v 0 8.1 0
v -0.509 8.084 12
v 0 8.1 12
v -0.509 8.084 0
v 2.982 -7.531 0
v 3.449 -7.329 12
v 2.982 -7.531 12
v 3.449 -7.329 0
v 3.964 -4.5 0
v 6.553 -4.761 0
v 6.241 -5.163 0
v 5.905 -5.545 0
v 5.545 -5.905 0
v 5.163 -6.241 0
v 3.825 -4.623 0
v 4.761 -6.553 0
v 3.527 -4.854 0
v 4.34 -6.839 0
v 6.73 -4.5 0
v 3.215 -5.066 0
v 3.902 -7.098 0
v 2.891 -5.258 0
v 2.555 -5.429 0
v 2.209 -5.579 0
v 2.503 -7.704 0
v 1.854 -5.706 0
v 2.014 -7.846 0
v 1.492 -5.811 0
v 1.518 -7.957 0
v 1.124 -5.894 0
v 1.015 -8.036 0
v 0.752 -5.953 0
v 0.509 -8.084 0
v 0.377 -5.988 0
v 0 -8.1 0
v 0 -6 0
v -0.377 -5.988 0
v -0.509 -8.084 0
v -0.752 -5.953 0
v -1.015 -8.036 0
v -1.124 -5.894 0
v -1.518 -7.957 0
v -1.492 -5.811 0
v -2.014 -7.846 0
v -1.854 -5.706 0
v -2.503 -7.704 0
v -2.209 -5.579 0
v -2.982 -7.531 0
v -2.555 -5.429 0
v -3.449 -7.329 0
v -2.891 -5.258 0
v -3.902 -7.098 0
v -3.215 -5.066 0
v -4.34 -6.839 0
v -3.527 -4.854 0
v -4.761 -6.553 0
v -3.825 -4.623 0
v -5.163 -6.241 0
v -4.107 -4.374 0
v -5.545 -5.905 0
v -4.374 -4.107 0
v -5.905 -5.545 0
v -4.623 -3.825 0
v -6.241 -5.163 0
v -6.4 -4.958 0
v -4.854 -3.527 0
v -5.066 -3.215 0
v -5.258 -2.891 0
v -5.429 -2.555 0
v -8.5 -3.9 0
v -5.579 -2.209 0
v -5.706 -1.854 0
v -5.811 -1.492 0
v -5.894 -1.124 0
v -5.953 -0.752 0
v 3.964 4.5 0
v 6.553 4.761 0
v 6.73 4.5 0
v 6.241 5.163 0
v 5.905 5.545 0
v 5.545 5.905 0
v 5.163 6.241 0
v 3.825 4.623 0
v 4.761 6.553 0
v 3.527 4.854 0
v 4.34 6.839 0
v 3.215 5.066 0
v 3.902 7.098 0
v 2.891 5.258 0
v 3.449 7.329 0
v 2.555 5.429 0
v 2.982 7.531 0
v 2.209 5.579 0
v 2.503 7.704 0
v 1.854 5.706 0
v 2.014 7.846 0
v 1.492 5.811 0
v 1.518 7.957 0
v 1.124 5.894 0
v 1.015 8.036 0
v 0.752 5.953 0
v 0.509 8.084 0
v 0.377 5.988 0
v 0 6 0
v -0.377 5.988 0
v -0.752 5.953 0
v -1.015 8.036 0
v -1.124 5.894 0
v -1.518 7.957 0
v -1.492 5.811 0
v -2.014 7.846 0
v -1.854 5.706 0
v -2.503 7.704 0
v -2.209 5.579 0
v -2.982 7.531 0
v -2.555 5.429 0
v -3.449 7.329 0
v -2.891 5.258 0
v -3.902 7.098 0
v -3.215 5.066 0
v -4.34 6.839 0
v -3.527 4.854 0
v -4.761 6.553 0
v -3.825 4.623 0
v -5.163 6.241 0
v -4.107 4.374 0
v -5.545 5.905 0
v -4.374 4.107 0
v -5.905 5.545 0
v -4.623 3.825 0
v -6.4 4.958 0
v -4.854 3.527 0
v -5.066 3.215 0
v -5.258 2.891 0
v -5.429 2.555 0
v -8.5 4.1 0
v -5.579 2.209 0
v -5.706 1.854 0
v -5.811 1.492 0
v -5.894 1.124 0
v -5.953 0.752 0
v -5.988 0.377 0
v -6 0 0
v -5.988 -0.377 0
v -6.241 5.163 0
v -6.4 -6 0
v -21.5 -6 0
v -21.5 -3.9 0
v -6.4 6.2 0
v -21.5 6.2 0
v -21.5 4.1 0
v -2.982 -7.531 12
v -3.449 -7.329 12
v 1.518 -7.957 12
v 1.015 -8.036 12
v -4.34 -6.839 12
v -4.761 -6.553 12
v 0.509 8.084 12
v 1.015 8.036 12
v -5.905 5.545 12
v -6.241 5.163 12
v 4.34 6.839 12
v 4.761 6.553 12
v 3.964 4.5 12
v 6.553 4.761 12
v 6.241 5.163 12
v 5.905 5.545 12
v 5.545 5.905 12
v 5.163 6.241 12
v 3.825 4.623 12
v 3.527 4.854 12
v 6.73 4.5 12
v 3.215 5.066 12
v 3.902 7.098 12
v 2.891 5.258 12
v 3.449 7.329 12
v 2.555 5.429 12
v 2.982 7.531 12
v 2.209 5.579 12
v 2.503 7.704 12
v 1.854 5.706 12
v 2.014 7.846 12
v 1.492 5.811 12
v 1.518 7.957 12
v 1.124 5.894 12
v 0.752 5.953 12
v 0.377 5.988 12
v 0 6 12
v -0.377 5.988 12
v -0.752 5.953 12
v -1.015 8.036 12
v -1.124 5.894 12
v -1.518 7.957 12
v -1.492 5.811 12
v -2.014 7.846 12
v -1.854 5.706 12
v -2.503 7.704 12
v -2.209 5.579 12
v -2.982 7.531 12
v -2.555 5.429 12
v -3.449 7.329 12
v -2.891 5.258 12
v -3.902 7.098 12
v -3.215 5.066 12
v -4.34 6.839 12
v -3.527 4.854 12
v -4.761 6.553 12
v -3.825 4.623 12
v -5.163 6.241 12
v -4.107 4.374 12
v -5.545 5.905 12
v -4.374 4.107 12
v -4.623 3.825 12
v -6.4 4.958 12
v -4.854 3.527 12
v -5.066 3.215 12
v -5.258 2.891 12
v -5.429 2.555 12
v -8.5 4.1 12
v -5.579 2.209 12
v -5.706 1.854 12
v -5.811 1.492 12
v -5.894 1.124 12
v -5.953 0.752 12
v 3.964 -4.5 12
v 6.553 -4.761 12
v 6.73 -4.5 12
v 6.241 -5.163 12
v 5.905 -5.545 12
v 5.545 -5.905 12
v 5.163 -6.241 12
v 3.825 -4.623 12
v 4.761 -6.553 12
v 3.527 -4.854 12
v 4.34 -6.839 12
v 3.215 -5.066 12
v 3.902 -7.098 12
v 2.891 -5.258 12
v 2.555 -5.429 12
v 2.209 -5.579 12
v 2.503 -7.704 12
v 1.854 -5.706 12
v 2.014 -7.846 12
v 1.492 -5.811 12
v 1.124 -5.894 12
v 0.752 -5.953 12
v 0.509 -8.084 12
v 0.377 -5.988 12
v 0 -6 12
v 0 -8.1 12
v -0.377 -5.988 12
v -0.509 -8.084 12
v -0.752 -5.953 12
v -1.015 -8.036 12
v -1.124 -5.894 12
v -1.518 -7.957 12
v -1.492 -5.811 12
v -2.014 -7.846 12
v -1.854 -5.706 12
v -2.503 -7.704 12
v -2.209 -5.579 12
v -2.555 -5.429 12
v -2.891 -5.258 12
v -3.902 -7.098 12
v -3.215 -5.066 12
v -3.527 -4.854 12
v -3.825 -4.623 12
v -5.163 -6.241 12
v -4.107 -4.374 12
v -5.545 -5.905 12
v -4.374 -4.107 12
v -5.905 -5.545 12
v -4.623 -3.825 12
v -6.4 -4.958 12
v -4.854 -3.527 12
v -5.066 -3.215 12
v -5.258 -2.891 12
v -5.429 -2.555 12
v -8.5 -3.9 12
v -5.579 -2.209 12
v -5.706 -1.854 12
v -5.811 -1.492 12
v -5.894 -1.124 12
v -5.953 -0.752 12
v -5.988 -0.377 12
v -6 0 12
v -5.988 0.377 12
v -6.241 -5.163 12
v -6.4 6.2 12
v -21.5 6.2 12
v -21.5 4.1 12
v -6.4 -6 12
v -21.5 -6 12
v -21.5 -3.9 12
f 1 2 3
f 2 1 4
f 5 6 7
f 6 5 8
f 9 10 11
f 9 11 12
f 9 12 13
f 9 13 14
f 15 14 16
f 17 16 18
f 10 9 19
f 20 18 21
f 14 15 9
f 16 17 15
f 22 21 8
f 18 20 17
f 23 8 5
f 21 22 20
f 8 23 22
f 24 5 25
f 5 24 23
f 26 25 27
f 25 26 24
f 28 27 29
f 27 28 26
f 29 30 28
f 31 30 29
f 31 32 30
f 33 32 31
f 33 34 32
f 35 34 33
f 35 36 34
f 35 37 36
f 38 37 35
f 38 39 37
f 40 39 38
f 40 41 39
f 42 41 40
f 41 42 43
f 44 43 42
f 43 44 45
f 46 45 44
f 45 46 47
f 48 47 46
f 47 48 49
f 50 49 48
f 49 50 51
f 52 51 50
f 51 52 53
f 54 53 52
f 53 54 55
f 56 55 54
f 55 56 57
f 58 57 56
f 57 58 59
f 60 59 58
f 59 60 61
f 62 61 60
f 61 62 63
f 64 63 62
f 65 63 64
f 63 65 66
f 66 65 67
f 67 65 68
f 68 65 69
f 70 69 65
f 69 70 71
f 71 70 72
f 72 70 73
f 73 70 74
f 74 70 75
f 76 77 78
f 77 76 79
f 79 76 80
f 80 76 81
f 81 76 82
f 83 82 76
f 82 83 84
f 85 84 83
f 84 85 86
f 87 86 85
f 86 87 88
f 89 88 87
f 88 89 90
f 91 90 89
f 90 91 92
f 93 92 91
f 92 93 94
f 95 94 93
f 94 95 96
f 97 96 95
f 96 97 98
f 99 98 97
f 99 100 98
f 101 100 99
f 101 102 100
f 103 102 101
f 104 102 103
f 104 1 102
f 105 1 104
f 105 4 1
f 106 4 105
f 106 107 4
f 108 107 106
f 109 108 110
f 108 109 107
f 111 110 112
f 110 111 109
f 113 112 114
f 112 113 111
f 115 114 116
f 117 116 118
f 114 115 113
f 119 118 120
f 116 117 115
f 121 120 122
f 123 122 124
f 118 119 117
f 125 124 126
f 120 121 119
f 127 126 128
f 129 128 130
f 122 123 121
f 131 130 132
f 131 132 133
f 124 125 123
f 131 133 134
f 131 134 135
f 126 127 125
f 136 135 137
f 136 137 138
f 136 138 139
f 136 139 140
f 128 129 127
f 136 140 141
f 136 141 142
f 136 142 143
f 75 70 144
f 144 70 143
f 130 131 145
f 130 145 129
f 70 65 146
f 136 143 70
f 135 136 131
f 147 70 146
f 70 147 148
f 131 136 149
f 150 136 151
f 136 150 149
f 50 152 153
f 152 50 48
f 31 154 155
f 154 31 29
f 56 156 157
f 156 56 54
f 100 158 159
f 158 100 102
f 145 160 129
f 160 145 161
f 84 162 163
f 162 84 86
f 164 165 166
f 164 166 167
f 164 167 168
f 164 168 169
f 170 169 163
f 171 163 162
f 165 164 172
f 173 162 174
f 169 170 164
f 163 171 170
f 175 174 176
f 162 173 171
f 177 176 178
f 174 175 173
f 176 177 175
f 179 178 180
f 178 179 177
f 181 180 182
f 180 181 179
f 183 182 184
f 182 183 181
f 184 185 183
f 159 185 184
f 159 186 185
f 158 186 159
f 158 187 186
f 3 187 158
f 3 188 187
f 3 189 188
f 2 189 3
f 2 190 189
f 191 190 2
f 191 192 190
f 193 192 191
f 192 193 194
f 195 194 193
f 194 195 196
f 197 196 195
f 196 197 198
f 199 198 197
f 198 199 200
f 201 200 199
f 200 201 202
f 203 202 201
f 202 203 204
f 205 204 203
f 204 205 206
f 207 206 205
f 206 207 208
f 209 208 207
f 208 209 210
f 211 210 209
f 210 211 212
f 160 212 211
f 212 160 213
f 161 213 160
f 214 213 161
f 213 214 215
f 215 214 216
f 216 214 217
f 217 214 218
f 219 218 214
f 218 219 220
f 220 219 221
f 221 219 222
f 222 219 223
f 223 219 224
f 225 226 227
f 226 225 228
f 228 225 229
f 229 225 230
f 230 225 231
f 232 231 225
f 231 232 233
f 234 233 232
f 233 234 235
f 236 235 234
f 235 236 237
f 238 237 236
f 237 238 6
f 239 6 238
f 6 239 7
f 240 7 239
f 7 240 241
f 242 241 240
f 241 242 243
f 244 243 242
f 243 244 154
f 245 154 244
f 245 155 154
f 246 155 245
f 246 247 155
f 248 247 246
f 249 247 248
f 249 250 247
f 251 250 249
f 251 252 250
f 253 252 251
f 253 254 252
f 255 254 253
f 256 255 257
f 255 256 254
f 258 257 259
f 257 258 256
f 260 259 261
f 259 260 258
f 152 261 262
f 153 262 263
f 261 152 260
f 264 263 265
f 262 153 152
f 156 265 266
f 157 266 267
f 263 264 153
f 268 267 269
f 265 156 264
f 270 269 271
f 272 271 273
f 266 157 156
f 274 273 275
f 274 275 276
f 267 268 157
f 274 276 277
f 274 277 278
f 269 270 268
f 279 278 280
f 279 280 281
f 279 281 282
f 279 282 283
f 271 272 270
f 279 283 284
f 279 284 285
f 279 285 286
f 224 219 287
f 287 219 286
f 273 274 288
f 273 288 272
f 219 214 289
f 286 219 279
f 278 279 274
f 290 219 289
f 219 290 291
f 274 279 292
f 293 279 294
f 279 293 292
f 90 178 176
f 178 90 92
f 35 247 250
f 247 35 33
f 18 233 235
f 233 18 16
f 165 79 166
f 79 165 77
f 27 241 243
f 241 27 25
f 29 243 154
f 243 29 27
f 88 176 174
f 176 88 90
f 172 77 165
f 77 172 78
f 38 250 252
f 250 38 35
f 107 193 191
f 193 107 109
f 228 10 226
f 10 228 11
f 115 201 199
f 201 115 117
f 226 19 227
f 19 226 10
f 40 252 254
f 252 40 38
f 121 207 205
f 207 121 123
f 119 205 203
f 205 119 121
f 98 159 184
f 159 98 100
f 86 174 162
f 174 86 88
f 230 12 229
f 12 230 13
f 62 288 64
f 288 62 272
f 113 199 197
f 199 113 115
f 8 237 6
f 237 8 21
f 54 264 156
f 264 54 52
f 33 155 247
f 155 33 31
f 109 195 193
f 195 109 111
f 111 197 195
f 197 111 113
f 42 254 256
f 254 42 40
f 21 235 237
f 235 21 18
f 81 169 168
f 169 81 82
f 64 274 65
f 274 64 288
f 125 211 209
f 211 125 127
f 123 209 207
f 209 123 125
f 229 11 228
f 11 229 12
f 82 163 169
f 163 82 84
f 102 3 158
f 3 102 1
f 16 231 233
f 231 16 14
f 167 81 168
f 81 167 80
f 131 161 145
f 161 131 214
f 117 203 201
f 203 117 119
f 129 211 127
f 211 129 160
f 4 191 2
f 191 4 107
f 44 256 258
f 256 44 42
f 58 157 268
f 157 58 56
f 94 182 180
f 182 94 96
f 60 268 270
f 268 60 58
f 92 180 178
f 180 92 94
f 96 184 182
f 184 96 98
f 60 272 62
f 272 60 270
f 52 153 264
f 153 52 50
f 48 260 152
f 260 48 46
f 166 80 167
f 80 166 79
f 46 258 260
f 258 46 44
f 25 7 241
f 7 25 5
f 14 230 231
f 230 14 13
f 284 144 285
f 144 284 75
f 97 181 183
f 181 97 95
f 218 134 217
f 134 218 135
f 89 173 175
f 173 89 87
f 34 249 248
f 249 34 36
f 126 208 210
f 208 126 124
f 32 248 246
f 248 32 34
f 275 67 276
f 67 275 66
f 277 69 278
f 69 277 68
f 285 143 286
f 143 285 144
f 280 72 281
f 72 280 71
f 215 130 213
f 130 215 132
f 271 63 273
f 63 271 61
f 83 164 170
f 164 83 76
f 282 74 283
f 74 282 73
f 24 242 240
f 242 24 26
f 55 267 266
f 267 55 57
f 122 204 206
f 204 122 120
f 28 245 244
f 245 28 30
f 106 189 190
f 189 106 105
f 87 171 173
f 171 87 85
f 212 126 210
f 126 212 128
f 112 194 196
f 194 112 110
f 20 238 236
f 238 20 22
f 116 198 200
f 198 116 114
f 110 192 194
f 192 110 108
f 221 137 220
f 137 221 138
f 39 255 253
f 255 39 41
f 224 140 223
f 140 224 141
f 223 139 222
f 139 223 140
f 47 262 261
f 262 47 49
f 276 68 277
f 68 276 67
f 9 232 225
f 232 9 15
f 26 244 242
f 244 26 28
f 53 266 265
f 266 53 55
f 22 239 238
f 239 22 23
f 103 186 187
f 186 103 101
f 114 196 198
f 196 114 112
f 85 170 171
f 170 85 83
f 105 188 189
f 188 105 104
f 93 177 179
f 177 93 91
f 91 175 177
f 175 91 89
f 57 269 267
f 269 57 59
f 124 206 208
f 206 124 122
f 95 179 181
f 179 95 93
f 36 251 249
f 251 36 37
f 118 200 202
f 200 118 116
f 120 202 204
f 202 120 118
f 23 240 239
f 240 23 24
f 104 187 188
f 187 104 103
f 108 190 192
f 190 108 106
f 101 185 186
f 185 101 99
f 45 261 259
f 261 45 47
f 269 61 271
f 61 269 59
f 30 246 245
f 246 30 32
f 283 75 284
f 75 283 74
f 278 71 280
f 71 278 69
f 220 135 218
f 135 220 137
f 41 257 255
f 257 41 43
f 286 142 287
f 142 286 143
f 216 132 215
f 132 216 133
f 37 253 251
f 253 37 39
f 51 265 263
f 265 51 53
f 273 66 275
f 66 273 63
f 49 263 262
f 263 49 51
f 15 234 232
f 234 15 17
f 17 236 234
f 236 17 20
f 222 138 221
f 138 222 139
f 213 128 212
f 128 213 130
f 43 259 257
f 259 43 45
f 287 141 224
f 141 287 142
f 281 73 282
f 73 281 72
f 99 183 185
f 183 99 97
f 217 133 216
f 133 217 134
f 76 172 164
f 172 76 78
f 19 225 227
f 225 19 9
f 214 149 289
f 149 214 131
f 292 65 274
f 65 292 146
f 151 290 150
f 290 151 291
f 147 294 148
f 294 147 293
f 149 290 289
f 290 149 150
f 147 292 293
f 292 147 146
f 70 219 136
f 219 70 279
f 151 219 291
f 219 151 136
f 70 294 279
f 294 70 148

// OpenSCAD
depth = 12;
thickness = 2.1;
stand_rad = 12 / 2;
$fn = 100;
box_space = 9;
pen_width = 13;
pen_depth = 8;
clip_offset = -21.5;

difference()
{
    // Outer circle.
    cylinder(h = depth, r = (stand_rad + thickness));
    // Inner cou-out.
    cylinder(h = depth, r = stand_rad);
    translate([(box_space / 2) - thickness, -(box_space / 2), 0])
    {
        cube([box_space, box_space, depth]);
    }
}

translate([clip_offset, -6, 0])
{
    difference()
    {
        // outer box.
        cube([pen_width + thickness, pen_depth + thickness + thickness, depth]);
        translate([0, thickness, 0])
        {
            // Cut-out.
            cube([pen_width, pen_depth, depth]);
        }
    }
}
